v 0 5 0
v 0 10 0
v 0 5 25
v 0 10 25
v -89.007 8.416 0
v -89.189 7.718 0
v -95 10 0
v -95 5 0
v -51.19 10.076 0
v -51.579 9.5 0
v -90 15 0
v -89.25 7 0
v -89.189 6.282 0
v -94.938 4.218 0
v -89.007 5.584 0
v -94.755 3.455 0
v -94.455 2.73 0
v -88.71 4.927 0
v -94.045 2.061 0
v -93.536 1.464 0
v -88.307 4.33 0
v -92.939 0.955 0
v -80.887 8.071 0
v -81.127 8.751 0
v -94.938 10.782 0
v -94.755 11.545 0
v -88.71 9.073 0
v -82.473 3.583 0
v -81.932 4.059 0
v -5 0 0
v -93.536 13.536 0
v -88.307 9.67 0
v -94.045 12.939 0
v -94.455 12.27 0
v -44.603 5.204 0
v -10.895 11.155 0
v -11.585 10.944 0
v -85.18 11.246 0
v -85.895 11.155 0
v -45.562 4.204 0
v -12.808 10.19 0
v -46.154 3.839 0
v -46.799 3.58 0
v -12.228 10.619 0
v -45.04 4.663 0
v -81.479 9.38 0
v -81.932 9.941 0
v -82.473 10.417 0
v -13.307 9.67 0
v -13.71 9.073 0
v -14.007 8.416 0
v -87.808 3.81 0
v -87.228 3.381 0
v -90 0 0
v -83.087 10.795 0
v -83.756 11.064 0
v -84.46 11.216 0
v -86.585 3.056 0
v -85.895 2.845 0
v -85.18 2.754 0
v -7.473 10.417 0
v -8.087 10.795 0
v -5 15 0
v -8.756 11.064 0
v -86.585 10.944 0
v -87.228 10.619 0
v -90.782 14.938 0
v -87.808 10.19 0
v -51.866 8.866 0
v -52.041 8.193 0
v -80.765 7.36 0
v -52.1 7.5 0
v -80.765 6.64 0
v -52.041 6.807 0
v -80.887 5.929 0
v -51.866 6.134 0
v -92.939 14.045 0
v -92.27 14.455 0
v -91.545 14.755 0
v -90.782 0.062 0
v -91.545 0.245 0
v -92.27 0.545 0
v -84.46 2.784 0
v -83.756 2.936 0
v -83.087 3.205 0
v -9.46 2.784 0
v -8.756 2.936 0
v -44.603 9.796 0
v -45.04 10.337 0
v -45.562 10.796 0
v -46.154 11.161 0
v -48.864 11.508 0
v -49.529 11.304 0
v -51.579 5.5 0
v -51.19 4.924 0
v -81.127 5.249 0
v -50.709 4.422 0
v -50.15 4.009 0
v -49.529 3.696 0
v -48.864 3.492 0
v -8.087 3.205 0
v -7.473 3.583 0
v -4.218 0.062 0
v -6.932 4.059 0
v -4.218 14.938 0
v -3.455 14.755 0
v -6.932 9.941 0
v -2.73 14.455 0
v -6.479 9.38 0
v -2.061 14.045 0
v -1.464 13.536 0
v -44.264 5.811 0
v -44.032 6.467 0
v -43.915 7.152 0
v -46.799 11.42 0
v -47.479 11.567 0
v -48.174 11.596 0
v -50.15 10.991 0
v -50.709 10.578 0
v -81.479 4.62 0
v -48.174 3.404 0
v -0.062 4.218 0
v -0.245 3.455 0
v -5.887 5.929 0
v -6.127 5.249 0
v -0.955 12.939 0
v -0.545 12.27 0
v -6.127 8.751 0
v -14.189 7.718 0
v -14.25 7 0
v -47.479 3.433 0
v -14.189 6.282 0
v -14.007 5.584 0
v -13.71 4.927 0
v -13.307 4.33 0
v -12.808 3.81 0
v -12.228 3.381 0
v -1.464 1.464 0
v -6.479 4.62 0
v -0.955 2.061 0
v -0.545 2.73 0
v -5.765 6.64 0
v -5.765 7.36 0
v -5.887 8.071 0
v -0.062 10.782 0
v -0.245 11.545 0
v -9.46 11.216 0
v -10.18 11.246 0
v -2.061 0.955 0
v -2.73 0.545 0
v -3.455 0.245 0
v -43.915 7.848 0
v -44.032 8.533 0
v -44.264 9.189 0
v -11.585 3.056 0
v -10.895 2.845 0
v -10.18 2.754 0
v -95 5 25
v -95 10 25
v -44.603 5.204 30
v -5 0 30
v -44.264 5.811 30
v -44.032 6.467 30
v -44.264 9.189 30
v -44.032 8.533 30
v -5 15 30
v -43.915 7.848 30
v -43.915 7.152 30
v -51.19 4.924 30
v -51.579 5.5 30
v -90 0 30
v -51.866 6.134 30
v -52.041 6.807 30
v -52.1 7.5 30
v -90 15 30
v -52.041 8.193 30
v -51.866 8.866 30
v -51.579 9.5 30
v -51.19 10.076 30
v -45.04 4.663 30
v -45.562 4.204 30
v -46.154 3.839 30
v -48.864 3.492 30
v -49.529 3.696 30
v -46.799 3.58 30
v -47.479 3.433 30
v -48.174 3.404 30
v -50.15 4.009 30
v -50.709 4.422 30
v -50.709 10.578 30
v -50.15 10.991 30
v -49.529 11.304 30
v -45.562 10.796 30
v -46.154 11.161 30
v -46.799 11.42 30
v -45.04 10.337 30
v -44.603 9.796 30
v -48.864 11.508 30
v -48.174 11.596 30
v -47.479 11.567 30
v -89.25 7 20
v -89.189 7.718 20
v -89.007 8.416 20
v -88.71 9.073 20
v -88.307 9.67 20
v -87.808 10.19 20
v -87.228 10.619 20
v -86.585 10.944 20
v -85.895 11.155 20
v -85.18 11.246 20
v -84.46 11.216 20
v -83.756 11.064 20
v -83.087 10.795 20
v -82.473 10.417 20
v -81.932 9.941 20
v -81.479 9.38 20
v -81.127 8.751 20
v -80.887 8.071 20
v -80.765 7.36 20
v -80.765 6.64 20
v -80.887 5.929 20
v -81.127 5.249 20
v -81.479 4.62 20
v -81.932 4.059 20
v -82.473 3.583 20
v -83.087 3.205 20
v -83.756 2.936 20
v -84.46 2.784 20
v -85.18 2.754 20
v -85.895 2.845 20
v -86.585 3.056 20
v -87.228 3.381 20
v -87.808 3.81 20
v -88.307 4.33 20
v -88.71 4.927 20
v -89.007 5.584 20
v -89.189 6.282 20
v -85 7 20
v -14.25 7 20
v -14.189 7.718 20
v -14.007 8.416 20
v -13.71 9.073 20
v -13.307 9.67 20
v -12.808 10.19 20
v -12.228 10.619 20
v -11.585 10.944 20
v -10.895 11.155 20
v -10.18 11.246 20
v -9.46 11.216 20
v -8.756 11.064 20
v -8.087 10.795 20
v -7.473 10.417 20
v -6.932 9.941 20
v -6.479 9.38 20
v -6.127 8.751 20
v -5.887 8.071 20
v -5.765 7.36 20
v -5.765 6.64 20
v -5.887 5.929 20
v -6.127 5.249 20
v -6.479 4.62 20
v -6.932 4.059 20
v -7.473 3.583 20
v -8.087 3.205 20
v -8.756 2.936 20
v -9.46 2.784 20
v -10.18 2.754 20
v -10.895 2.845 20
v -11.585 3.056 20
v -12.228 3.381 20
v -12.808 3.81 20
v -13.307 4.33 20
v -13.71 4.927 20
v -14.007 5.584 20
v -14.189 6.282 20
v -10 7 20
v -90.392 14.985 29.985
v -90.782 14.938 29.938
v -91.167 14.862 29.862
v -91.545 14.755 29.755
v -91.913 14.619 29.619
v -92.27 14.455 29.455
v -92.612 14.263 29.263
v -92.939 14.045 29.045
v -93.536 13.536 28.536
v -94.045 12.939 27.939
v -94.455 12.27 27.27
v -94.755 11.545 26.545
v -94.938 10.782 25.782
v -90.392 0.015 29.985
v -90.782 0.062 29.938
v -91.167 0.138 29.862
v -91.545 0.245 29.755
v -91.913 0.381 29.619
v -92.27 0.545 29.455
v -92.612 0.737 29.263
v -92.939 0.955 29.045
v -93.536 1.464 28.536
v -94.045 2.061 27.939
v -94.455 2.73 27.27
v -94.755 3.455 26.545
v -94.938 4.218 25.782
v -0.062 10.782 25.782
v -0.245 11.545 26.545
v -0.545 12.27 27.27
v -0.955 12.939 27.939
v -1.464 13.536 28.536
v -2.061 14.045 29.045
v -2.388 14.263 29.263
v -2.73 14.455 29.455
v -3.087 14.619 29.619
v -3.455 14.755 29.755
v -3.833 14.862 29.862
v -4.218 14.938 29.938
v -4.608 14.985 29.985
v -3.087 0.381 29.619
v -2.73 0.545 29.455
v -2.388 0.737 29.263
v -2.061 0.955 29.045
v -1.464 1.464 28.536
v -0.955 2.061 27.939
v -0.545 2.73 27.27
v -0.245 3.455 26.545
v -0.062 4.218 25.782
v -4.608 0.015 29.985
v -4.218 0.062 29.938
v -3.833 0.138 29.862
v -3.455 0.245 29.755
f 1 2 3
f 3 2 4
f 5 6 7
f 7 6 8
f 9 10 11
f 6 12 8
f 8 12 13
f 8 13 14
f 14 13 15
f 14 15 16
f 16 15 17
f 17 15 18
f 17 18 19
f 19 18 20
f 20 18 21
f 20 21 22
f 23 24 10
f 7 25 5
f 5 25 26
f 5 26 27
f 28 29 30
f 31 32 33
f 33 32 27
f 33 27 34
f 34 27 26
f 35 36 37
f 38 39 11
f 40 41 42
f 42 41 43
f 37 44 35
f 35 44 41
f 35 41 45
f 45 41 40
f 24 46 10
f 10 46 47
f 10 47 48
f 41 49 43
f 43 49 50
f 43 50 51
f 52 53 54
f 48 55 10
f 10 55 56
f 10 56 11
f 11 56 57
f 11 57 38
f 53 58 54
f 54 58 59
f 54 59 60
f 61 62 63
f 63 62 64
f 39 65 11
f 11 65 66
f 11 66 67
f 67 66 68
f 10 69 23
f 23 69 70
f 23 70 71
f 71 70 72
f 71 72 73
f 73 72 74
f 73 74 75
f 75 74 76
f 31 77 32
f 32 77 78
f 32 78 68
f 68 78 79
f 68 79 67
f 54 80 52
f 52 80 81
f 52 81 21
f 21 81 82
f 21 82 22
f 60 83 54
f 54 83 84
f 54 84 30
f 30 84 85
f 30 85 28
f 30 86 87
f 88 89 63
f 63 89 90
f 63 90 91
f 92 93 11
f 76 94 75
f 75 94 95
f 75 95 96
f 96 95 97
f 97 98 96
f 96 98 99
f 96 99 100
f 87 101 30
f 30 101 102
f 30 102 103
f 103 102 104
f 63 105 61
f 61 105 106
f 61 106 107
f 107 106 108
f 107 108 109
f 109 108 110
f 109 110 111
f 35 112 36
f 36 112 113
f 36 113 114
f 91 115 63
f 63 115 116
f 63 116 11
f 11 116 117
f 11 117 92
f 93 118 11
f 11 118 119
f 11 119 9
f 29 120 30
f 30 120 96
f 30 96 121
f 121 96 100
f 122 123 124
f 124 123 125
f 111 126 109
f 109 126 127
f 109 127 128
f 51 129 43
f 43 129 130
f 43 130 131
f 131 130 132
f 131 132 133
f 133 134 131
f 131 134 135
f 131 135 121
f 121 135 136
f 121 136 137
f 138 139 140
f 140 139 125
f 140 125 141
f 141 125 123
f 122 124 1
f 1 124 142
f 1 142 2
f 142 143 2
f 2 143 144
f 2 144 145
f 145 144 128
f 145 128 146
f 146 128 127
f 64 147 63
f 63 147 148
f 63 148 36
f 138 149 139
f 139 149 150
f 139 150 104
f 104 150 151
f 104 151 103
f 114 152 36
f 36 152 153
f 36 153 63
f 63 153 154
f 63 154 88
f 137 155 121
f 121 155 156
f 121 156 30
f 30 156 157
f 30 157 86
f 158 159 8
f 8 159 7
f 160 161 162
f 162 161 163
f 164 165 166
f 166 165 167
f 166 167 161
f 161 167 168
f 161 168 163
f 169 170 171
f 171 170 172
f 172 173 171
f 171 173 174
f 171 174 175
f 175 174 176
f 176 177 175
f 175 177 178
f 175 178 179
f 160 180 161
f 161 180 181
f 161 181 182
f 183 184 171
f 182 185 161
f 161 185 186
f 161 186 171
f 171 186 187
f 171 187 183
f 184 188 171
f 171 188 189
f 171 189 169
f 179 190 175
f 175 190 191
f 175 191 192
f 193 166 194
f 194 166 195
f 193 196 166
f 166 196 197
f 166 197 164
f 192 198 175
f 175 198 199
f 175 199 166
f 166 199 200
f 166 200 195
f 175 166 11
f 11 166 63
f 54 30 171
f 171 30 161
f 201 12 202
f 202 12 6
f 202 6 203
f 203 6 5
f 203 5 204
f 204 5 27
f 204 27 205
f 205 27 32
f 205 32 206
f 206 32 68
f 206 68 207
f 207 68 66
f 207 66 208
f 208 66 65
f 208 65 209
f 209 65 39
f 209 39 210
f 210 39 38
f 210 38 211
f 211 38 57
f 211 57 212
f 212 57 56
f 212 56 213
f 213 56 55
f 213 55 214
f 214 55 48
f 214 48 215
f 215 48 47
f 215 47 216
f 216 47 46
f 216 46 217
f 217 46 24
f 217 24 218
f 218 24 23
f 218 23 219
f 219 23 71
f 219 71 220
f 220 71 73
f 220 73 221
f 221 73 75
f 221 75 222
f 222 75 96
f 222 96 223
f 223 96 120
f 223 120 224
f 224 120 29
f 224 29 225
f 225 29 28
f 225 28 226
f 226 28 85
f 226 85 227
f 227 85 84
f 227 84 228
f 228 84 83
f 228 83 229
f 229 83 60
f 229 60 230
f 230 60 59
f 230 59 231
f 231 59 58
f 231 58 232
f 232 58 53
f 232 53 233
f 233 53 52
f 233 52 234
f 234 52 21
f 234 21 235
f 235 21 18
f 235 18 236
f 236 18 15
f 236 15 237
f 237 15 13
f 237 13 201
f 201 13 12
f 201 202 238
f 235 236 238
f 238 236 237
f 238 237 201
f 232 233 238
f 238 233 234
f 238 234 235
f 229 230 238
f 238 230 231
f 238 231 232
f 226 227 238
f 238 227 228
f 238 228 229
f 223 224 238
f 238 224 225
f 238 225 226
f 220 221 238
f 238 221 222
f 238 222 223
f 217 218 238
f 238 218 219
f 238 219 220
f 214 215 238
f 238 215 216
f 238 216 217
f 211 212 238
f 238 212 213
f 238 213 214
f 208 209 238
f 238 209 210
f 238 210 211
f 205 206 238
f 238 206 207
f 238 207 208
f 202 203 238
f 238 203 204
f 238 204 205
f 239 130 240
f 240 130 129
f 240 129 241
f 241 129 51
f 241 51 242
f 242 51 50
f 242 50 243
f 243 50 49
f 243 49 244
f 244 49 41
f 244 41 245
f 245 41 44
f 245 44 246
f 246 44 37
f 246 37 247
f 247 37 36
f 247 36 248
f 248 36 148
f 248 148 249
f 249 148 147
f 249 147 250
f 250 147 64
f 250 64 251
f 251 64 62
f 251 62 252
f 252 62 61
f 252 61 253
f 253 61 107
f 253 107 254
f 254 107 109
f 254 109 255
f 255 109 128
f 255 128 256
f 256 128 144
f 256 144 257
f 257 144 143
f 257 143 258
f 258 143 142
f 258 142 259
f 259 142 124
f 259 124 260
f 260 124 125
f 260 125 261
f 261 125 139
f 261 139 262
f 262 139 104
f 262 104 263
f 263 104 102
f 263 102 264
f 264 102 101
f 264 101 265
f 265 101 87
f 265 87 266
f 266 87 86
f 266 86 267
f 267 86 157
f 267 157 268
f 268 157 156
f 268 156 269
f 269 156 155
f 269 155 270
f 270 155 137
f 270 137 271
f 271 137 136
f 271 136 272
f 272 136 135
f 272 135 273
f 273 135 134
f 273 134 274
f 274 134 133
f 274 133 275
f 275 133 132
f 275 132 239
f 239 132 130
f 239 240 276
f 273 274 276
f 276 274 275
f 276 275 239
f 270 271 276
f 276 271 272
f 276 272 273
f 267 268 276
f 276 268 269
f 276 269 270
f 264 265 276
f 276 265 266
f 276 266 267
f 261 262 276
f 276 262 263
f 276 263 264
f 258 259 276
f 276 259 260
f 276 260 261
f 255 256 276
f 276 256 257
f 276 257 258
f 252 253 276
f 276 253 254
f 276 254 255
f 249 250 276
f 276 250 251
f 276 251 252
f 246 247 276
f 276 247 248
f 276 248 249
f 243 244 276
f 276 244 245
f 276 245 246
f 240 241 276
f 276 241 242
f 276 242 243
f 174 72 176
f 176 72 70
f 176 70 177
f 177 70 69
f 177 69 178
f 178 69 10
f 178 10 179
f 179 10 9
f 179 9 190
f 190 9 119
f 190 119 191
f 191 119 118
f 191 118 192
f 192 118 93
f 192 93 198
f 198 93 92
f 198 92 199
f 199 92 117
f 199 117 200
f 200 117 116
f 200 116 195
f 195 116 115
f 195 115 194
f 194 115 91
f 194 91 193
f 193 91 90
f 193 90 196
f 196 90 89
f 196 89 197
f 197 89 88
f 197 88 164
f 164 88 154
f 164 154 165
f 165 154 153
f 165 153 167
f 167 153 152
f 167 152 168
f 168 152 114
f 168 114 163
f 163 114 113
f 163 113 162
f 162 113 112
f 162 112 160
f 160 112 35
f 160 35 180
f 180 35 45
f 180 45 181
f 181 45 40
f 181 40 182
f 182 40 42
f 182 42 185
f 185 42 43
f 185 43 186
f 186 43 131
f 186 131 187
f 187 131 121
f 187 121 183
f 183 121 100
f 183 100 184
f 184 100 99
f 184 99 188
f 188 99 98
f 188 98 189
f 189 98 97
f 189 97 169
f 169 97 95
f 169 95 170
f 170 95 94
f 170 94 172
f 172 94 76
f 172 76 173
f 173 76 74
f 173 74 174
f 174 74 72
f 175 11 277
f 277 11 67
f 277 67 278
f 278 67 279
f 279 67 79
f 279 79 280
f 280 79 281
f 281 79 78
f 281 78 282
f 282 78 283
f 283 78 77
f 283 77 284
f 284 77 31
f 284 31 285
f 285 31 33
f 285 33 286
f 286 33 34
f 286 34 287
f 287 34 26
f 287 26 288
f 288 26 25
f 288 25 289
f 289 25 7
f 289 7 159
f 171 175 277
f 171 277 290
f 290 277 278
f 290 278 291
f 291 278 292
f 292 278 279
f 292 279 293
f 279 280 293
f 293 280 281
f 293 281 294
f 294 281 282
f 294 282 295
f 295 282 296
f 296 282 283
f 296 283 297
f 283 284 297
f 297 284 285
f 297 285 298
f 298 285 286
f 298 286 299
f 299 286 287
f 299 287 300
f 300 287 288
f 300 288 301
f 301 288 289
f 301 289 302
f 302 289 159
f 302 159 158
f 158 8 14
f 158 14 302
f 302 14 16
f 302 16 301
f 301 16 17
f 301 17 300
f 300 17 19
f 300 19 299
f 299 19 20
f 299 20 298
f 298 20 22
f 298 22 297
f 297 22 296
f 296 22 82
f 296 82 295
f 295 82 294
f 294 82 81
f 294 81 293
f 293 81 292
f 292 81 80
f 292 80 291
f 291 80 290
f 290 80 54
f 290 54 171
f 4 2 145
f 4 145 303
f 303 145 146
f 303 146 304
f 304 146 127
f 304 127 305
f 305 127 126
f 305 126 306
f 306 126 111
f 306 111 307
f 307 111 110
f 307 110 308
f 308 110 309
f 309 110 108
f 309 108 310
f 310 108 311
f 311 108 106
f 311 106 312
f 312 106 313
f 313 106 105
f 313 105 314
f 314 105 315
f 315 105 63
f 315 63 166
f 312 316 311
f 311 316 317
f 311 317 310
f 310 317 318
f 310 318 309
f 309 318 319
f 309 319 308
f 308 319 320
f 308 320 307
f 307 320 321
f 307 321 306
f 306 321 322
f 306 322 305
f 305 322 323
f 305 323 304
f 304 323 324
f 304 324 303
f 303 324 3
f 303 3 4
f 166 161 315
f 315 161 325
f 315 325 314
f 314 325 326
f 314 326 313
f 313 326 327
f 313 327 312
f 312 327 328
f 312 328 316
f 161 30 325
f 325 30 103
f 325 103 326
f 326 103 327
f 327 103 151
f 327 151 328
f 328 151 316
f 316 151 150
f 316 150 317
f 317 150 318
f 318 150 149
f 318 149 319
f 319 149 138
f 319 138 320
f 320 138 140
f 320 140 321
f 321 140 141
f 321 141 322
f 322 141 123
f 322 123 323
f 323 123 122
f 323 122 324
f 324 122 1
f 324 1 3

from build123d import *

# Parameters (mm, degrees)
ESQUISSE1_W             = 95
ESQUISSE1_H             = 30
BOSS_EXTRU_1_DEPTH      = 15
ESQUISSE2_R             = 4.25
ENL_V_MAT_EXTRU_2_DEPTH = 20
ENL_V_MAT_EXTRU_3_REACH = 102.747
ESQUISSE3_R             = 4.1
CONG_1_R                = 5


with BuildPart() as part:
    # Esquisse1 → Boss.-Extru.1 (new body)
    with BuildSketch(Plane(origin=(0, 0, 0), x_dir=(1, 0, 0), z_dir=(0, 1, 0))):
        with Locations((-47.5, -15)):
            Rectangle(ESQUISSE1_W, ESQUISSE1_H)
    extrude(amount=BOSS_EXTRU_1_DEPTH)

    # Esquisse2 → Enlèv. mat.-Extru.2 (cut)
    with BuildSketch(Plane(origin=(0, 0, 0), x_dir=(-1, 0, 0), z_dir=(0, 0, -1))):
        with Locations((10, 7)):
            Circle(ESQUISSE2_R)
        with Locations((85, 7)):
            Circle(ESQUISSE2_R)
    extrude(amount=-ENL_V_MAT_EXTRU_2_DEPTH, mode=Mode.SUBTRACT)

    # Esquisse3 → Enlèv. mat.-Extru.3 (cut, up to next)
    with BuildSketch(Plane(origin=(0, 0, 0), x_dir=(-1, 0, 0), z_dir=(0, 0, -1)), mode=Mode.PRIVATE) as enl_v_mat_extru_3_sk1:
        with Locations((48, 7.5)):
            Circle(ESQUISSE3_R)
    enl_v_mat_extru_3_tool1 = extrude(enl_v_mat_extru_3_sk1.sketch, amount=-ENL_V_MAT_EXTRU_3_REACH, mode=Mode.PRIVATE) & part.part
    add(enl_v_mat_extru_3_tool1.solids().sort_by_distance((-48, 7.5, 0))[0], mode=Mode.SUBTRACT)

    # Congé1
    cong_1_edges = [part.edges().sort_by_distance(p)[0] for p in [
        (-95, 15, 15),
        (0, 15, 15),
        (-95, 0, 15),
        (0, 0, 15),
        (0, 7.5, 30),
        (-95, 7.5, 30),
    ]]
    fillet(cong_1_edges, radius=CONG_1_R)


solid = part.part
